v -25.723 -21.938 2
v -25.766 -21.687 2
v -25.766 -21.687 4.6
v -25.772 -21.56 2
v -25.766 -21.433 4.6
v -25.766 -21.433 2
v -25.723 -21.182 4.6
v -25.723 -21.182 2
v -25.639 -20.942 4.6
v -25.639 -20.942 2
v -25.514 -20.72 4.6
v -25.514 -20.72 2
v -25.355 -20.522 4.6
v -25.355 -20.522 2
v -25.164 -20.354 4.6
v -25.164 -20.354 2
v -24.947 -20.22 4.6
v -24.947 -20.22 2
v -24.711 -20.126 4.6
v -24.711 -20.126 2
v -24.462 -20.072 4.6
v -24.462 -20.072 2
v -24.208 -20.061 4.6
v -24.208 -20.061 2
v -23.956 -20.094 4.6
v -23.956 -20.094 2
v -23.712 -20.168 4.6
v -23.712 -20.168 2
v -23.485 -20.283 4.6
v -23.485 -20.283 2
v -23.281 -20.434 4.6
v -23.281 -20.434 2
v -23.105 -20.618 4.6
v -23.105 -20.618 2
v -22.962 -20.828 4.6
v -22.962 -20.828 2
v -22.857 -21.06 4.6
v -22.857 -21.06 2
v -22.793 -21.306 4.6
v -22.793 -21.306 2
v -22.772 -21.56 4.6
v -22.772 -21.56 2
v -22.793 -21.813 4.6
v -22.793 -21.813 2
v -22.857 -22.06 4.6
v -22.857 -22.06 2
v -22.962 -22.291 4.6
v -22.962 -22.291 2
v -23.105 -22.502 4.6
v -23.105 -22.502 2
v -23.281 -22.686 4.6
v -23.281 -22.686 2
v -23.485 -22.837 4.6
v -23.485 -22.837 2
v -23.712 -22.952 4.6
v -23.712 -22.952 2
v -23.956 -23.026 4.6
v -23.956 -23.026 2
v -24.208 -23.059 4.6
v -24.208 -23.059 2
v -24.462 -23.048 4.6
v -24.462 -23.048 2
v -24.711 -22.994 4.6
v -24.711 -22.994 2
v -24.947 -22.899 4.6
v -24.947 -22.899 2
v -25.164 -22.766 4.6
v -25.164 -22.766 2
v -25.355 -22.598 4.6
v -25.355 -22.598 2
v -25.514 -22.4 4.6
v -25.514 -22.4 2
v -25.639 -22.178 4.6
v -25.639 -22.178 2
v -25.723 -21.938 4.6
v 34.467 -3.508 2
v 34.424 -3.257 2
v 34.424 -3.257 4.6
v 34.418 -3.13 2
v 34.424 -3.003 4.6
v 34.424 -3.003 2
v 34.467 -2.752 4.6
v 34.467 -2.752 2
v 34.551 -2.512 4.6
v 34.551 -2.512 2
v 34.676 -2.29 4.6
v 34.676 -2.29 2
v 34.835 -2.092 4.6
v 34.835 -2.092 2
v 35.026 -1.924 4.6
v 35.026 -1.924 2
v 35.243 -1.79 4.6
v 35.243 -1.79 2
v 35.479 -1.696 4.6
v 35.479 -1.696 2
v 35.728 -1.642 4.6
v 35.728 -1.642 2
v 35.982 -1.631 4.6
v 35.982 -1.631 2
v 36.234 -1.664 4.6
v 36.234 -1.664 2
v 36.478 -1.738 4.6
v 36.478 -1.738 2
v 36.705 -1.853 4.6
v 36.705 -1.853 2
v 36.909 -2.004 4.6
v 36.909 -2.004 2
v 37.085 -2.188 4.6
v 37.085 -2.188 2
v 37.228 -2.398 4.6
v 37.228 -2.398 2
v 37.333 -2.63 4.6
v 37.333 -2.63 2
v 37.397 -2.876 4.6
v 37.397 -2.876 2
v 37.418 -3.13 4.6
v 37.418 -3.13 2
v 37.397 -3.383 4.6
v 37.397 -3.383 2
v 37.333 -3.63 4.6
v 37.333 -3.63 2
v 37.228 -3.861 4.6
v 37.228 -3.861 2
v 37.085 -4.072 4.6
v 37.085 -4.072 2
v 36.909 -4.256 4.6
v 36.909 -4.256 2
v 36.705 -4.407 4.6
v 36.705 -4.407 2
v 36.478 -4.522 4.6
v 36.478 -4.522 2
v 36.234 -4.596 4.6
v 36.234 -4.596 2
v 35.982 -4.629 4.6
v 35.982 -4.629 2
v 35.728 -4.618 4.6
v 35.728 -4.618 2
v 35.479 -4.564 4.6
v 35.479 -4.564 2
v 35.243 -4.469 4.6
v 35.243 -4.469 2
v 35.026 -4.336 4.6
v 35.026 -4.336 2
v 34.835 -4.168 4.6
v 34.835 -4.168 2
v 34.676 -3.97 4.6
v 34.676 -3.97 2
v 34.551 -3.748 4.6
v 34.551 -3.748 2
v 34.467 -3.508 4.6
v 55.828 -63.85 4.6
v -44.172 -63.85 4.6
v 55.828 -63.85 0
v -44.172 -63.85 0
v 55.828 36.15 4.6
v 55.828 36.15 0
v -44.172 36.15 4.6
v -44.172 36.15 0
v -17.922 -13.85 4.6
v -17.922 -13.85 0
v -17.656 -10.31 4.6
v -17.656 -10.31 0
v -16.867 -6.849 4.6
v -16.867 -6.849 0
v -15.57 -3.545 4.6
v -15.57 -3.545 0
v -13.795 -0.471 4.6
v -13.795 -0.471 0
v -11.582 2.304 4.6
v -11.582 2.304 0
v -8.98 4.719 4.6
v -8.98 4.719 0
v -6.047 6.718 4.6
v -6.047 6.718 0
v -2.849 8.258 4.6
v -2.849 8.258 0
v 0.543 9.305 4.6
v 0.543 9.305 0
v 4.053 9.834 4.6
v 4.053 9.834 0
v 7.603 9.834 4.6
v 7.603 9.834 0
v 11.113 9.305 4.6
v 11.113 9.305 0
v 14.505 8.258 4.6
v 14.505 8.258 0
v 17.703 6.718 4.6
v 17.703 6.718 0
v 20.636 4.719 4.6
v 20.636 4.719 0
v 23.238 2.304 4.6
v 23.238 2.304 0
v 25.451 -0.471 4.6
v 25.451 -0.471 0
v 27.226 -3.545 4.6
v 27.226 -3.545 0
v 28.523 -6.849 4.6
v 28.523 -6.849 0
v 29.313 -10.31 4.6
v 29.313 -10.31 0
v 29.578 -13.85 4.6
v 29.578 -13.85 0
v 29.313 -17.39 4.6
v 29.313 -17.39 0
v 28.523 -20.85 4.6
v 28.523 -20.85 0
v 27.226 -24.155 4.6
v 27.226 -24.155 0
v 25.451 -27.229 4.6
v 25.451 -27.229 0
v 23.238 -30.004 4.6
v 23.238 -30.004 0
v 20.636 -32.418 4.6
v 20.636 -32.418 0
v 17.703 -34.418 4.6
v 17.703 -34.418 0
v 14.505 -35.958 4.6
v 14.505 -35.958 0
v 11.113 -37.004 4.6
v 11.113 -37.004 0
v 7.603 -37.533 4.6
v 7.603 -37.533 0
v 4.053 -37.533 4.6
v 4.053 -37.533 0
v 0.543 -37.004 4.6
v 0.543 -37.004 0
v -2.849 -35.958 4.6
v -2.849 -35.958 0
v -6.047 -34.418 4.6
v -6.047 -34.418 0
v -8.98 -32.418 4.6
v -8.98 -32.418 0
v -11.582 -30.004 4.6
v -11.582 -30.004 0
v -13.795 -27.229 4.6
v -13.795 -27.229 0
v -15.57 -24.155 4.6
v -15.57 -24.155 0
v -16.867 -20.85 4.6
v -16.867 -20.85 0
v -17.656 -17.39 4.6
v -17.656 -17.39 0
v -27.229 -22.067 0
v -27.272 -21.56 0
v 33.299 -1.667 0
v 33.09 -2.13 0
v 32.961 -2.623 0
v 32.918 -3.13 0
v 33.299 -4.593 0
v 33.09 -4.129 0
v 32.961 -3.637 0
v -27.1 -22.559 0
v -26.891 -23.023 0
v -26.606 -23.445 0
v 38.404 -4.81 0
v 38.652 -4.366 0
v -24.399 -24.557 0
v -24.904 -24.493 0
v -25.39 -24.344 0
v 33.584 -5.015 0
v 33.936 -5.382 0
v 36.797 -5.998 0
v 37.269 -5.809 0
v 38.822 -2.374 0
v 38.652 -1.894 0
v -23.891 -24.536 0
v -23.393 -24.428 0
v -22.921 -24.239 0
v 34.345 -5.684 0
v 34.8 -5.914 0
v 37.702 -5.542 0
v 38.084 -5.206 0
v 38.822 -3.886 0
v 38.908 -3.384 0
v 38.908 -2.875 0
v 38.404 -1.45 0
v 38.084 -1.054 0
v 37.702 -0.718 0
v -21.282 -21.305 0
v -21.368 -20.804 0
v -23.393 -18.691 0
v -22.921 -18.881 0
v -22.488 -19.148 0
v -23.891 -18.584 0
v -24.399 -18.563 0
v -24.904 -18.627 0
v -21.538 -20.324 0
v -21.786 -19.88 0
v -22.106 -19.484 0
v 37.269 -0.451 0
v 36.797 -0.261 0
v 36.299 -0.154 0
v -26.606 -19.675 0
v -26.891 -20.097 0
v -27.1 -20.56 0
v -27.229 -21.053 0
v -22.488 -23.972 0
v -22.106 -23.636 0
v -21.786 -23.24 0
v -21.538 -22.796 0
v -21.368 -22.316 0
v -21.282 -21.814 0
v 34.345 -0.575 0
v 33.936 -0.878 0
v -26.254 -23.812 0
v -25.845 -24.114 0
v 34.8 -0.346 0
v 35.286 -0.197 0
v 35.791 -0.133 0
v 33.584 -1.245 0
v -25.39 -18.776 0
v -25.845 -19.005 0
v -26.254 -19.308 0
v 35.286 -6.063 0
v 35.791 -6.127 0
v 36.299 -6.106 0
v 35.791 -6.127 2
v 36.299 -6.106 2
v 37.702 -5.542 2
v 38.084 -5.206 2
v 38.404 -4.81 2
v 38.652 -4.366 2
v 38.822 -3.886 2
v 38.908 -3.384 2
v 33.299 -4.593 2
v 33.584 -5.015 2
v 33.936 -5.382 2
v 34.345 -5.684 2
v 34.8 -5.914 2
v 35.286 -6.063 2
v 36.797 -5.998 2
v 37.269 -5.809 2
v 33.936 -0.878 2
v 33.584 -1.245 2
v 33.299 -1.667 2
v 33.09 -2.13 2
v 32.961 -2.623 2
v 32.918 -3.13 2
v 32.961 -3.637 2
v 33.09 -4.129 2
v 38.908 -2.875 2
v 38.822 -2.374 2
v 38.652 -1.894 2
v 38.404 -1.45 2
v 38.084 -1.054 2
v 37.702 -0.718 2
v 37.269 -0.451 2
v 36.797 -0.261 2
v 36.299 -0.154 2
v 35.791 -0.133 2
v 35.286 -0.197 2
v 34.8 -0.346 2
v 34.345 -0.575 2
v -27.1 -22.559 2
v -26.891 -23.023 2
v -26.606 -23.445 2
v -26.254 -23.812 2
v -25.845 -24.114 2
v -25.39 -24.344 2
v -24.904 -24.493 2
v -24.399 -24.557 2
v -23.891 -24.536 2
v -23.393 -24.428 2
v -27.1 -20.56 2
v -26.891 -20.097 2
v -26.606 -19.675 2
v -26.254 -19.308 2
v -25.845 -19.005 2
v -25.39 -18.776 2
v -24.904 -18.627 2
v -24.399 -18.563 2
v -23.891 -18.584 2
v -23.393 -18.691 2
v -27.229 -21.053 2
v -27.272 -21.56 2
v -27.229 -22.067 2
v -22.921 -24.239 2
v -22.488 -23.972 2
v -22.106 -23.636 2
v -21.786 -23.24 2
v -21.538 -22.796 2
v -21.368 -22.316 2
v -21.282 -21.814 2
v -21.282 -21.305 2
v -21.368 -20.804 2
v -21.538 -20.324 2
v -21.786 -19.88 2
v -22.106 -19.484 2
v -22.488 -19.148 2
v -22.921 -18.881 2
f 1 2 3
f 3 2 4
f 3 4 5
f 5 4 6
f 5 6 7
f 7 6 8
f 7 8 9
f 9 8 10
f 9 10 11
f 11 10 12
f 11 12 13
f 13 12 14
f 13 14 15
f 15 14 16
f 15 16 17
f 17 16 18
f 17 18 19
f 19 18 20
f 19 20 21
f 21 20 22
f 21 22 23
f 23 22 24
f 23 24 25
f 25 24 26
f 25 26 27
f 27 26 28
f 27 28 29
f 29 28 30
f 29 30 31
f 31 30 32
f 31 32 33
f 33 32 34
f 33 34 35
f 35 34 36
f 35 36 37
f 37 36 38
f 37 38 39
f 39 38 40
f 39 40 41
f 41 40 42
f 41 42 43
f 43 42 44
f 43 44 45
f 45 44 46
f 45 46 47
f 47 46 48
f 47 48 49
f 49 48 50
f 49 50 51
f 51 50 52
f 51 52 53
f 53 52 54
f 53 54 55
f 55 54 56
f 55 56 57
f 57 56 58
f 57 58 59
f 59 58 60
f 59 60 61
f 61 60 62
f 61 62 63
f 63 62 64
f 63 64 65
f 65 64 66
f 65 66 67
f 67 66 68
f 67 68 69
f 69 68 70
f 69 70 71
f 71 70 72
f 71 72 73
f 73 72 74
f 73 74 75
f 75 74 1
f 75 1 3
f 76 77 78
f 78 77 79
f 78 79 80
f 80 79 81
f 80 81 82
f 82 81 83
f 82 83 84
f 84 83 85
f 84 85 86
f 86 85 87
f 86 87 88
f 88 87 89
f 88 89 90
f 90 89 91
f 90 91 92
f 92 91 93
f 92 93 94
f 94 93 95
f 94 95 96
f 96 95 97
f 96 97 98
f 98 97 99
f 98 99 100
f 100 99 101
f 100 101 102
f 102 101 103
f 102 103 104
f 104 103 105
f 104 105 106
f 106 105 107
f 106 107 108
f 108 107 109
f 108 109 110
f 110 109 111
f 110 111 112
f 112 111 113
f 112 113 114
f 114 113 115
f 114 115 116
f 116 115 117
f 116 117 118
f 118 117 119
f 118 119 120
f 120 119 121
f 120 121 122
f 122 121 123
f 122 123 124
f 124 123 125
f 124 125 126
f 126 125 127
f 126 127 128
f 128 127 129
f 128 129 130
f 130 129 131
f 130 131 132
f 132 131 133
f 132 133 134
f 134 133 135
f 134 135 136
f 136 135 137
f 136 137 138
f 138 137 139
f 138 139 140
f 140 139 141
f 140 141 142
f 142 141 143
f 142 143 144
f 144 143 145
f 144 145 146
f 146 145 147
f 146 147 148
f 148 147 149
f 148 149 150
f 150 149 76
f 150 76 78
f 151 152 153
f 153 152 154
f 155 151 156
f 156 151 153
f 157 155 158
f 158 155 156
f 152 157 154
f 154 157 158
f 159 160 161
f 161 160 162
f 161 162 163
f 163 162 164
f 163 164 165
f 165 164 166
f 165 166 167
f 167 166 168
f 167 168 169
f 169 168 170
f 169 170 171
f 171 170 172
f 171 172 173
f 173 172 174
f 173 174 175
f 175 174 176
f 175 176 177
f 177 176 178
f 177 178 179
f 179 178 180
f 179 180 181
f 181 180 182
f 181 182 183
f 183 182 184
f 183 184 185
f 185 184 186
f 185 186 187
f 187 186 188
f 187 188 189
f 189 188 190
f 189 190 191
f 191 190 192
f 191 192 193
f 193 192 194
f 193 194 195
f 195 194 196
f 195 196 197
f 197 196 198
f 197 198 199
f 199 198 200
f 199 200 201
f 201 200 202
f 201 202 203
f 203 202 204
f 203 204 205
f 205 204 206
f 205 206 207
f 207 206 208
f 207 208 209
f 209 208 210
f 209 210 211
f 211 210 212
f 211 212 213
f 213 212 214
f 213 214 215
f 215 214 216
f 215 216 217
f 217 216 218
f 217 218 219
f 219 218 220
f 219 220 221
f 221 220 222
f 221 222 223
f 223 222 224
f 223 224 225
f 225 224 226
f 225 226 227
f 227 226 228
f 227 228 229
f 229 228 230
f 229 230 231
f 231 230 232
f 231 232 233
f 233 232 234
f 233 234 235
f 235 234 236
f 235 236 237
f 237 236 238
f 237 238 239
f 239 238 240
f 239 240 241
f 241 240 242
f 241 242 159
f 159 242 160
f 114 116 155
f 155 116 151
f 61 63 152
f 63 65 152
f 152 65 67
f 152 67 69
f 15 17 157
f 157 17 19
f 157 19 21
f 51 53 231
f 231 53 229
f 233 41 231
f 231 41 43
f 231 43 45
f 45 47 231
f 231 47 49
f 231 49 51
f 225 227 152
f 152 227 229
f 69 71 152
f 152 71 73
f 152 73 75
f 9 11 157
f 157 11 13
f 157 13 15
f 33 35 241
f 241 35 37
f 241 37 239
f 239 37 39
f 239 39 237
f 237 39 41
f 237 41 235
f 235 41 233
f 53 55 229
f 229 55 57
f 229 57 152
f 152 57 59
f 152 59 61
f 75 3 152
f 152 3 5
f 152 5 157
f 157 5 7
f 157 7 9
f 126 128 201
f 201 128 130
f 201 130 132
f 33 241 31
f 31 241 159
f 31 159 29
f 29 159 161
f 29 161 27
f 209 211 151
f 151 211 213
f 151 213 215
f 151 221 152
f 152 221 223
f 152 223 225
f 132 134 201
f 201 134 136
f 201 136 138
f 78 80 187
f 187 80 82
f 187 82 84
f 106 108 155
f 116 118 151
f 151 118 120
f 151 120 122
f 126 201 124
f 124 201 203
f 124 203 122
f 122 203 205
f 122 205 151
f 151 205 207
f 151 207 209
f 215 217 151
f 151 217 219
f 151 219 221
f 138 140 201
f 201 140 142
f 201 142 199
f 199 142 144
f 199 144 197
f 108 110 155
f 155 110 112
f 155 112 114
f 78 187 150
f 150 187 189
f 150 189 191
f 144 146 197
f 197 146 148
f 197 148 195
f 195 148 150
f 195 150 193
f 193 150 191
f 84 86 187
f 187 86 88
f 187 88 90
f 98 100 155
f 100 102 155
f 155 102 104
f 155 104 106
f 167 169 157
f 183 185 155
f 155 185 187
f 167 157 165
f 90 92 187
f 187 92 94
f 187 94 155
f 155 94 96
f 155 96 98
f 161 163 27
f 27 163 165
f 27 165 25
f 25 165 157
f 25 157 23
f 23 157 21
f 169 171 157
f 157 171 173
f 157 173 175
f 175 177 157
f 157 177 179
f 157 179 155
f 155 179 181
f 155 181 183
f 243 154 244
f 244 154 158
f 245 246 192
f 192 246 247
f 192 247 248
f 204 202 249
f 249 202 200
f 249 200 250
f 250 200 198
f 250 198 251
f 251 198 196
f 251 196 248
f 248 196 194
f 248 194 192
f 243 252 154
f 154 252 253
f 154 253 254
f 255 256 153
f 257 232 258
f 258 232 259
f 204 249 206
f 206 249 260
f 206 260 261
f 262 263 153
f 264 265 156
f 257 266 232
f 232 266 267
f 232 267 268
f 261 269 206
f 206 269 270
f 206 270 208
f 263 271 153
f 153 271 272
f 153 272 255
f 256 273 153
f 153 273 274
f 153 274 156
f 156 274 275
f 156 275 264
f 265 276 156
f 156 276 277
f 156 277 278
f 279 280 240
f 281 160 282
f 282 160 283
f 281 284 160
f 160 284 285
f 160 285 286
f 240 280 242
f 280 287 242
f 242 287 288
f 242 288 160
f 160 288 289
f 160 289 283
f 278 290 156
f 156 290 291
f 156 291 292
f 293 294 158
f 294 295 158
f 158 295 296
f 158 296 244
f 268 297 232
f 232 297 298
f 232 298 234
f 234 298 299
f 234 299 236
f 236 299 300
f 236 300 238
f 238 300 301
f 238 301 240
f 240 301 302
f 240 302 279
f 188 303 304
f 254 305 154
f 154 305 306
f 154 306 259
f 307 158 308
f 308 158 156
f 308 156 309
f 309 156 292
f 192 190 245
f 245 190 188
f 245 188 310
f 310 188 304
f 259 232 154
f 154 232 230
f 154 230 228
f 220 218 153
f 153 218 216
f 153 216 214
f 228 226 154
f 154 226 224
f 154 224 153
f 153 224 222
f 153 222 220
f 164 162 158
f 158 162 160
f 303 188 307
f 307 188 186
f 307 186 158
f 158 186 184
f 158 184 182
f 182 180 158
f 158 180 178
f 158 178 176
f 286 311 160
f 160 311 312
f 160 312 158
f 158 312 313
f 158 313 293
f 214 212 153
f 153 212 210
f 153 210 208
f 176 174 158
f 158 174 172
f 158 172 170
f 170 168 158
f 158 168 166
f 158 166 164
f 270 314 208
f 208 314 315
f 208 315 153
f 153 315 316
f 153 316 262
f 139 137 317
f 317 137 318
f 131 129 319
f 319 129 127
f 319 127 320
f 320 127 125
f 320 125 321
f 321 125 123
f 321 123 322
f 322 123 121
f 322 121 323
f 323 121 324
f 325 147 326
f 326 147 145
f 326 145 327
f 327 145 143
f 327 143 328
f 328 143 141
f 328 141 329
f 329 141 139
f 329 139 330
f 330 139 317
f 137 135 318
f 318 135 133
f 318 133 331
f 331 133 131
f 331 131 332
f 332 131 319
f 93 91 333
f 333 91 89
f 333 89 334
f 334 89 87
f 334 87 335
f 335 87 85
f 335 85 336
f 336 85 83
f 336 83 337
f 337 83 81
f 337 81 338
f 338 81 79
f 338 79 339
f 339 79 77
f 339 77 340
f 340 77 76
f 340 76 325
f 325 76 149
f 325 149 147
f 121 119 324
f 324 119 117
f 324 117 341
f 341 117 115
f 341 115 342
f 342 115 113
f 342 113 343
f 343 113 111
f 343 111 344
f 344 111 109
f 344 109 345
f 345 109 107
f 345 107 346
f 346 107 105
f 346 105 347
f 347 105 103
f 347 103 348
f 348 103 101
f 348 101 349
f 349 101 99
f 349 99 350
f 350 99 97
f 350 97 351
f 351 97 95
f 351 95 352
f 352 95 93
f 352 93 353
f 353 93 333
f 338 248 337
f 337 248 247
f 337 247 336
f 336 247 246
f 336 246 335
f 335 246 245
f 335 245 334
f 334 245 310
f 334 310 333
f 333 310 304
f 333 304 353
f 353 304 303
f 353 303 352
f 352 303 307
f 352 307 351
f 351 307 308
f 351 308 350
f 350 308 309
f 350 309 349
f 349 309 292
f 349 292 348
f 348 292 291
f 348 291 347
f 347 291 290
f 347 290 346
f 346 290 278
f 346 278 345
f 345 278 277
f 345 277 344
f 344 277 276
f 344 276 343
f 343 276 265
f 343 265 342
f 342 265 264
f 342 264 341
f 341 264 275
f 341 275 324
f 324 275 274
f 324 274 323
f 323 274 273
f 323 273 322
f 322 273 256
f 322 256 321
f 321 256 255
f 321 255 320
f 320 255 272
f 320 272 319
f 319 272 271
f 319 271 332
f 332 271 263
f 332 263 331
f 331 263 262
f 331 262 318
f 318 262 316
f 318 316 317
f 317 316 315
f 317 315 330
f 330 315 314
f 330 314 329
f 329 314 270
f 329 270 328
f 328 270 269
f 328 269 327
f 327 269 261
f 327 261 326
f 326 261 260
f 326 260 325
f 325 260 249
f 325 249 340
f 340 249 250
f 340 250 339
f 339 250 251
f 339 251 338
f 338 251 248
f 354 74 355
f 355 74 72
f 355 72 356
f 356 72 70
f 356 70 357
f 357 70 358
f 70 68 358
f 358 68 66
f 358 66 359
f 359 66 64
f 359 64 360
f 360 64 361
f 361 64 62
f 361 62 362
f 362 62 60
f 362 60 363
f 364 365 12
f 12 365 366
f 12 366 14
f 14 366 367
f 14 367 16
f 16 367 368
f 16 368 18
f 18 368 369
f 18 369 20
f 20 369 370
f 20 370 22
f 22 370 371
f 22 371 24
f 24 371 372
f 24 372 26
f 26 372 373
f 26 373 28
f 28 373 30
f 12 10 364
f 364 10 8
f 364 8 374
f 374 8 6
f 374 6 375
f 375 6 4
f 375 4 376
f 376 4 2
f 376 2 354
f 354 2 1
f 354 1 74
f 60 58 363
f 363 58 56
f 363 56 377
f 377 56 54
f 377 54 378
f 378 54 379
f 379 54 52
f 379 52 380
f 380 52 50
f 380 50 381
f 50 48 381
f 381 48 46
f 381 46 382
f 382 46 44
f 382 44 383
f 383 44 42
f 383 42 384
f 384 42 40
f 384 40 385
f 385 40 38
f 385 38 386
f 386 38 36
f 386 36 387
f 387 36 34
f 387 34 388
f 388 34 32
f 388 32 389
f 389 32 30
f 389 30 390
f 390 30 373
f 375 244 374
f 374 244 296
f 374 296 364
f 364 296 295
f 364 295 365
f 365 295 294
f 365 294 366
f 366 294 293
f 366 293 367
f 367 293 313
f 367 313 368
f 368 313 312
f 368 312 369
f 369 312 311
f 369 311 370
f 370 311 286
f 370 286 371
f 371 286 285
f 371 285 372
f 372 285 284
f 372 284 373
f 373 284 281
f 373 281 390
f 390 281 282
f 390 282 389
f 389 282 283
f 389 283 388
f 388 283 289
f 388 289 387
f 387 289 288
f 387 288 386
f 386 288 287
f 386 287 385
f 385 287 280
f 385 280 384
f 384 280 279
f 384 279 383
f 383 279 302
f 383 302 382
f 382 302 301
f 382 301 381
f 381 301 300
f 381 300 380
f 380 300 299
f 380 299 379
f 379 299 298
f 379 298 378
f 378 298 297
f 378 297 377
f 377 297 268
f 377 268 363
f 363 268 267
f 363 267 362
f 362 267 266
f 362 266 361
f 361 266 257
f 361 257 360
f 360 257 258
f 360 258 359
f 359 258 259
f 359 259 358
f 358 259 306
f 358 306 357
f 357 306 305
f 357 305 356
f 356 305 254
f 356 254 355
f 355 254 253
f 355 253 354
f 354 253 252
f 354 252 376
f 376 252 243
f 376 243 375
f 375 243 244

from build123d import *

# Parameters (mm, degrees)
ESQUISSE1_W             = 100
ESQUISSE1_H             = 100
ESQUISSE1_R             = 23.75
BOSS_EXTRU_1_DEPTH      = 4.6
ESQUISSE2_R             = 1.5
ENL_V_MAT_EXTRU_1_DEPTH = 10
ESQUISSE3_R             = 3
ENL_V_MAT_EXTRU_2_DEPTH = 2


with BuildPart() as part:
    # Esquisse1 → Boss.-Extru.1 (new body)
    with BuildSketch(Plane.XY):
        with Locations((5.828319543, -13.849884125)):
            Rectangle(ESQUISSE1_W, ESQUISSE1_H)
        with Locations((5.828319543, -13.849884125)):
            Circle(ESQUISSE1_R, mode=Mode.SUBTRACT)
    extrude(amount=BOSS_EXTRU_1_DEPTH)

    # Esquisse2 → Enlèv. mat.-Extru.1 (cut)
    with BuildSketch(Plane.XY.offset(4.6)):
        with Locations((-24.271680457, -21.559884125)):
            Circle(ESQUISSE2_R)
        with Locations((35.918319543, -3.129884125)):
            Circle(ESQUISSE2_R)
    extrude(amount=-ENL_V_MAT_EXTRU_1_DEPTH, mode=Mode.SUBTRACT)

    # Esquisse3 → Enlèv. mat.-Extru.2 (cut)
    with BuildSketch(Plane(origin=(0, 0, 0), x_dir=(-1, 0, 0), z_dir=(0, 0, -1))):
        with Locations((-35.918319543, -3.129884125)):
            Circle(ESQUISSE3_R)
        with Locations((24.271680457, -21.559884125)):
            Circle(ESQUISSE3_R)
    extrude(amount=-ENL_V_MAT_EXTRU_2_DEPTH, mode=Mode.SUBTRACT)


solid = part.part
